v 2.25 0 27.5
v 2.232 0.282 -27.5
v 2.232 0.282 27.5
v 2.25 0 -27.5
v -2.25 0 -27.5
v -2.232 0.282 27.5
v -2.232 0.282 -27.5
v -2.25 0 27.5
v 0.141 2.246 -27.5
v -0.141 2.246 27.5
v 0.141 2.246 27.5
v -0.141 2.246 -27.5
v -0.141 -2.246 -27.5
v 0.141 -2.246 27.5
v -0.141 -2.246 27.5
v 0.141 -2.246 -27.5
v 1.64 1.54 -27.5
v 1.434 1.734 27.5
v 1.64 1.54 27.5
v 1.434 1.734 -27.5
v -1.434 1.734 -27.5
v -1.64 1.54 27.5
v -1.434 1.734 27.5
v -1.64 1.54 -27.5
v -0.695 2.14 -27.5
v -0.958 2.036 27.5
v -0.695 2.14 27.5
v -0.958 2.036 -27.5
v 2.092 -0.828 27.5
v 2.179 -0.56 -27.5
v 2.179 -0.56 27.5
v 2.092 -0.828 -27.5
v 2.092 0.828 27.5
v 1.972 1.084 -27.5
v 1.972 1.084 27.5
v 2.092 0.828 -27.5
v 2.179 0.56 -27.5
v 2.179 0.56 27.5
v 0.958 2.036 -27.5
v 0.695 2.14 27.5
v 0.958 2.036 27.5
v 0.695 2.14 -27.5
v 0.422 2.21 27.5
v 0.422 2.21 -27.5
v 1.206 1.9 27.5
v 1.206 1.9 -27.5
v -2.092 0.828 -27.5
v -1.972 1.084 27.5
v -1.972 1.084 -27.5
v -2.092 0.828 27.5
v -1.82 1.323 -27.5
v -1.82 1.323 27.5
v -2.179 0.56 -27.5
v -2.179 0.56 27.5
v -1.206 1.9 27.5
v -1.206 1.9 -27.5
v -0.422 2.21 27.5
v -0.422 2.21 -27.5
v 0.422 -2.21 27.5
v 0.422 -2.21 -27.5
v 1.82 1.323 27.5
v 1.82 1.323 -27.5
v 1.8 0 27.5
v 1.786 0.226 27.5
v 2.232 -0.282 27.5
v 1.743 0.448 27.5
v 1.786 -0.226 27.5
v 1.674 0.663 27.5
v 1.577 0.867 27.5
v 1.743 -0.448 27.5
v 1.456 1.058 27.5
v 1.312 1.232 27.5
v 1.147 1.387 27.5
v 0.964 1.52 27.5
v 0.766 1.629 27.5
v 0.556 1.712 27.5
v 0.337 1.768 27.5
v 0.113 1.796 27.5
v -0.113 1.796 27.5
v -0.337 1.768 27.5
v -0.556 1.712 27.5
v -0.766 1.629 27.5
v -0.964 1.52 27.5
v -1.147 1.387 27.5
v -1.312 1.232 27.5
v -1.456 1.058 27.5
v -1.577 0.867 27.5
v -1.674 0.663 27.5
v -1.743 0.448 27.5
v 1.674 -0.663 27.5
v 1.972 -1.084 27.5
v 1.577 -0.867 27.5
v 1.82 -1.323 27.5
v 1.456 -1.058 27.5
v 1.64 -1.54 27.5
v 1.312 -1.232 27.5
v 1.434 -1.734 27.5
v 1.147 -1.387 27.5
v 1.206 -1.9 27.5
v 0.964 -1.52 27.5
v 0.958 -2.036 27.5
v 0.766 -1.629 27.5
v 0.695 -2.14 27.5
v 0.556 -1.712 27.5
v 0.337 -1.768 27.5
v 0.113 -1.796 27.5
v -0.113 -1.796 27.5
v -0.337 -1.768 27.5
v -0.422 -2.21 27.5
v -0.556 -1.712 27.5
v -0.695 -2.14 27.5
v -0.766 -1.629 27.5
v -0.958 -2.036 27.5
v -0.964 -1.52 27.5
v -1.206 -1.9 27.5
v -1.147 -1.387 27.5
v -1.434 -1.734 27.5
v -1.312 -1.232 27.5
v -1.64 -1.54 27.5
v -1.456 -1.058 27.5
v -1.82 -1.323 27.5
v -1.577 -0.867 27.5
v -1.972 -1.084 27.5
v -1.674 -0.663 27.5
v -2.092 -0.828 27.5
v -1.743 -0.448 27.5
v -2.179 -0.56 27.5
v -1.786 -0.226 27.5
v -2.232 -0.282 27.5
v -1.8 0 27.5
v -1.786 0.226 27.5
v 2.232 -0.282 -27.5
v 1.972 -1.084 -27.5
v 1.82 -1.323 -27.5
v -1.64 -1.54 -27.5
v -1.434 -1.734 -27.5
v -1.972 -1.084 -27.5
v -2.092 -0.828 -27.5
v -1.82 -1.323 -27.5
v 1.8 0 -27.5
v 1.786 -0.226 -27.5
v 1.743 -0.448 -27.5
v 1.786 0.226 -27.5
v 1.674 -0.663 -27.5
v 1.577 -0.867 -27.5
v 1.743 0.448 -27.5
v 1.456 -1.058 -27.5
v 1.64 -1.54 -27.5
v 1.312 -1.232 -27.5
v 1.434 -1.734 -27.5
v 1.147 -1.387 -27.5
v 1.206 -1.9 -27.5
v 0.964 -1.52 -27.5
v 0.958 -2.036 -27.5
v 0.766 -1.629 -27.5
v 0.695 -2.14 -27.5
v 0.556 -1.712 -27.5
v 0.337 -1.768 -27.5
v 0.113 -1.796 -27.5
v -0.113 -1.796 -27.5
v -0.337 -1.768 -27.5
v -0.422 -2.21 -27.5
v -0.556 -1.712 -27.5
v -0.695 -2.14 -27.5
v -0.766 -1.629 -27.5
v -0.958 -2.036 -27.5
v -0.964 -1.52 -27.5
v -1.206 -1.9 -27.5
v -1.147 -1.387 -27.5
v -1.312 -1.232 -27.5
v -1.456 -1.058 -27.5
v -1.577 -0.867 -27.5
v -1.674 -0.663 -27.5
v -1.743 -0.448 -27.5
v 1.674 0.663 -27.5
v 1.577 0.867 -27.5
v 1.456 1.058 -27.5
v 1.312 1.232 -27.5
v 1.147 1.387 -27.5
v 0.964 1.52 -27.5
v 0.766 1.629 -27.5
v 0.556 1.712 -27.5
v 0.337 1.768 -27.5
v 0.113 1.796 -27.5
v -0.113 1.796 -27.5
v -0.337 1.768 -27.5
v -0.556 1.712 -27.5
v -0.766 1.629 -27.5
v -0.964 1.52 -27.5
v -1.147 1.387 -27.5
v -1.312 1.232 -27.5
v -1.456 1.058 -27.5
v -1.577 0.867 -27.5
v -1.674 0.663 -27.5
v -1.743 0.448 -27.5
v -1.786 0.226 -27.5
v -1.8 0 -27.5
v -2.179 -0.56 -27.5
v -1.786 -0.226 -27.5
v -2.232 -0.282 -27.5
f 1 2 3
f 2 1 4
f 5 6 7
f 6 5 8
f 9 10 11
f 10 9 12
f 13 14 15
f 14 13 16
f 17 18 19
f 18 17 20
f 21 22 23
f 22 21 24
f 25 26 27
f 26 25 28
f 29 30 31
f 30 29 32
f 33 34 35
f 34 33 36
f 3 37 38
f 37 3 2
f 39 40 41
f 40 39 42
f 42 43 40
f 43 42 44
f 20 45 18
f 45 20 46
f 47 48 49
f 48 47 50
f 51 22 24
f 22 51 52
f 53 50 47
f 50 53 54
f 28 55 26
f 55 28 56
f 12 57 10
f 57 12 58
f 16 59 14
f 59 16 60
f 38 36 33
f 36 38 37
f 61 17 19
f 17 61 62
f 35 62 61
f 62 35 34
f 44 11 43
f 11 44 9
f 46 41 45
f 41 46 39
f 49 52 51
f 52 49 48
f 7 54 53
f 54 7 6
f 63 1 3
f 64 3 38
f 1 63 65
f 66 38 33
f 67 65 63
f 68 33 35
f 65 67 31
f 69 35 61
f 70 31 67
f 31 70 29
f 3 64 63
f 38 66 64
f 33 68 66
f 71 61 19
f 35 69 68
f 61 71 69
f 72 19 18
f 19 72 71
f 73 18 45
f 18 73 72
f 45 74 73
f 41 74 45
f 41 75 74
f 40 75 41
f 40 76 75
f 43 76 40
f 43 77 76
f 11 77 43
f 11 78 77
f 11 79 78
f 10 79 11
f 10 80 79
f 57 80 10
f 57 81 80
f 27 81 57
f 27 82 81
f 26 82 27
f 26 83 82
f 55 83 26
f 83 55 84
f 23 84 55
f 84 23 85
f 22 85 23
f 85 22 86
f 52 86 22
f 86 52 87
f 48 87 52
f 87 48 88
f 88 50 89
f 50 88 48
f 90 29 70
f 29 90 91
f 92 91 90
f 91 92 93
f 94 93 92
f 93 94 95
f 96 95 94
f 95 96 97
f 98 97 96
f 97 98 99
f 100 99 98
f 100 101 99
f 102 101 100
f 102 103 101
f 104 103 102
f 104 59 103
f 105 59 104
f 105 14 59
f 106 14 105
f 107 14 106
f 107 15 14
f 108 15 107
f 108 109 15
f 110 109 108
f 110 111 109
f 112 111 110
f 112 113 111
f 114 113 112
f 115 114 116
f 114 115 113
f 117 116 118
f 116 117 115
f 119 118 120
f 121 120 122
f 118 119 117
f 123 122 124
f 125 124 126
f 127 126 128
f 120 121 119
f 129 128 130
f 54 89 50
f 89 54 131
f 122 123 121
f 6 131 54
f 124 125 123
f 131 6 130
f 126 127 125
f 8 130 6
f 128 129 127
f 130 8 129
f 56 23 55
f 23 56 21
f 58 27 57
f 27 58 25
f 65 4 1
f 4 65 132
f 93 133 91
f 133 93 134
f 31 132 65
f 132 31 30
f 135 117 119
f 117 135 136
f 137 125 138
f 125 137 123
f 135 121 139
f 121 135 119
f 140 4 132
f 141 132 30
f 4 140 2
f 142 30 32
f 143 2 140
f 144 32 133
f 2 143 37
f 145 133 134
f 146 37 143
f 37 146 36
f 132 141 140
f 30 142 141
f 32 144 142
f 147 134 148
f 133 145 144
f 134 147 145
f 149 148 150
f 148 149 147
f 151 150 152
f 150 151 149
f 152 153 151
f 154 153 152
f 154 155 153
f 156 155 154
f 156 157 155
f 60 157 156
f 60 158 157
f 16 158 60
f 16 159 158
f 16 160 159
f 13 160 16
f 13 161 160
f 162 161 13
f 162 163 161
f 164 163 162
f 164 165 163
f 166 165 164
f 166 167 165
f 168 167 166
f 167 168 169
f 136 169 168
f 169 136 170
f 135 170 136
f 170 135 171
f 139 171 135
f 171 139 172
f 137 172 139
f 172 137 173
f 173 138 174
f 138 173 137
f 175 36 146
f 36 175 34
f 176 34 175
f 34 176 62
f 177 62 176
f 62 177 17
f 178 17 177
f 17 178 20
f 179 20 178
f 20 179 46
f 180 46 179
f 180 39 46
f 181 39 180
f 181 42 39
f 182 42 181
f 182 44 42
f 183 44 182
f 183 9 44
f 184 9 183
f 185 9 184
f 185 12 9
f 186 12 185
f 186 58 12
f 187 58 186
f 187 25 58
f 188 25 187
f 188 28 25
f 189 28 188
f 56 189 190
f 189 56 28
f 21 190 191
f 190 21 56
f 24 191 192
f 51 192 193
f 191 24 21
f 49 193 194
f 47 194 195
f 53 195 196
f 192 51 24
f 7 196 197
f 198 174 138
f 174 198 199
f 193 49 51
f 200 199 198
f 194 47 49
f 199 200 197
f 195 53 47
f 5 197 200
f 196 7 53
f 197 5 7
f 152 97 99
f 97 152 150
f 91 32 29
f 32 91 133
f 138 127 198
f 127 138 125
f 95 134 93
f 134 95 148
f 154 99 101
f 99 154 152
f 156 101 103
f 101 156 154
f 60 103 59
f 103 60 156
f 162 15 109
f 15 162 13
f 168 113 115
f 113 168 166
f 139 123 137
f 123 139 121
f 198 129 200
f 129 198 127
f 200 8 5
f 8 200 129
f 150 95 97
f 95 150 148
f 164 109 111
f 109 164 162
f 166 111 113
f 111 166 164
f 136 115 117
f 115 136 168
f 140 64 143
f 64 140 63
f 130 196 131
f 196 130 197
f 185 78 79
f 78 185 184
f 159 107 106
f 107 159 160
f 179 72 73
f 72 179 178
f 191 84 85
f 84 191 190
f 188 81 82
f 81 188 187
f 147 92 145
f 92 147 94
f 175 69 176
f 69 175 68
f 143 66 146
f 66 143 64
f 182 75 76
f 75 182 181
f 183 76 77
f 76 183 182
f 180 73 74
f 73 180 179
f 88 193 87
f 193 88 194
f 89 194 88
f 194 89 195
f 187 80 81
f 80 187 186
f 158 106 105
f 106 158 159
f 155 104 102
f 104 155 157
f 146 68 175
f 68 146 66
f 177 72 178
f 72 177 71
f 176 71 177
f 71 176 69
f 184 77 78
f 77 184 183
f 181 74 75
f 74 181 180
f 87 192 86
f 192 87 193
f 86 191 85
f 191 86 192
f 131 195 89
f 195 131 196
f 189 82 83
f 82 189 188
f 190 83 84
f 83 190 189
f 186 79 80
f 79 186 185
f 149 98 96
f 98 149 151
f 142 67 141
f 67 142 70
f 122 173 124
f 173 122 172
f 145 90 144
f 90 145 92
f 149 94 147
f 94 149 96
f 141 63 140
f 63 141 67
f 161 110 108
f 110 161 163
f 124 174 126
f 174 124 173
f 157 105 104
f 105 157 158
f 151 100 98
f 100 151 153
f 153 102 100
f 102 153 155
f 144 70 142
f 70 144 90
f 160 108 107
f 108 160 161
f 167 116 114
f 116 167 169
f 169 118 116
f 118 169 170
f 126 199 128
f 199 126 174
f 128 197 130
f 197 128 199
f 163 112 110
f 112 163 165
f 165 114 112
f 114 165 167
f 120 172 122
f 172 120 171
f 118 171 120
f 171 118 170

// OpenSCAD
$fn = 50;


difference() {
	union() {
		translate(v = [0, 0, -27.5000000000]) {
			cylinder(h = 55, r = 2.2500000000);
		}
	}
	union() {
		translate(v = [0, 0, -100.0000000000]) {
			cylinder(h = 200, r = 1.8000000000);
		}
	}
}
